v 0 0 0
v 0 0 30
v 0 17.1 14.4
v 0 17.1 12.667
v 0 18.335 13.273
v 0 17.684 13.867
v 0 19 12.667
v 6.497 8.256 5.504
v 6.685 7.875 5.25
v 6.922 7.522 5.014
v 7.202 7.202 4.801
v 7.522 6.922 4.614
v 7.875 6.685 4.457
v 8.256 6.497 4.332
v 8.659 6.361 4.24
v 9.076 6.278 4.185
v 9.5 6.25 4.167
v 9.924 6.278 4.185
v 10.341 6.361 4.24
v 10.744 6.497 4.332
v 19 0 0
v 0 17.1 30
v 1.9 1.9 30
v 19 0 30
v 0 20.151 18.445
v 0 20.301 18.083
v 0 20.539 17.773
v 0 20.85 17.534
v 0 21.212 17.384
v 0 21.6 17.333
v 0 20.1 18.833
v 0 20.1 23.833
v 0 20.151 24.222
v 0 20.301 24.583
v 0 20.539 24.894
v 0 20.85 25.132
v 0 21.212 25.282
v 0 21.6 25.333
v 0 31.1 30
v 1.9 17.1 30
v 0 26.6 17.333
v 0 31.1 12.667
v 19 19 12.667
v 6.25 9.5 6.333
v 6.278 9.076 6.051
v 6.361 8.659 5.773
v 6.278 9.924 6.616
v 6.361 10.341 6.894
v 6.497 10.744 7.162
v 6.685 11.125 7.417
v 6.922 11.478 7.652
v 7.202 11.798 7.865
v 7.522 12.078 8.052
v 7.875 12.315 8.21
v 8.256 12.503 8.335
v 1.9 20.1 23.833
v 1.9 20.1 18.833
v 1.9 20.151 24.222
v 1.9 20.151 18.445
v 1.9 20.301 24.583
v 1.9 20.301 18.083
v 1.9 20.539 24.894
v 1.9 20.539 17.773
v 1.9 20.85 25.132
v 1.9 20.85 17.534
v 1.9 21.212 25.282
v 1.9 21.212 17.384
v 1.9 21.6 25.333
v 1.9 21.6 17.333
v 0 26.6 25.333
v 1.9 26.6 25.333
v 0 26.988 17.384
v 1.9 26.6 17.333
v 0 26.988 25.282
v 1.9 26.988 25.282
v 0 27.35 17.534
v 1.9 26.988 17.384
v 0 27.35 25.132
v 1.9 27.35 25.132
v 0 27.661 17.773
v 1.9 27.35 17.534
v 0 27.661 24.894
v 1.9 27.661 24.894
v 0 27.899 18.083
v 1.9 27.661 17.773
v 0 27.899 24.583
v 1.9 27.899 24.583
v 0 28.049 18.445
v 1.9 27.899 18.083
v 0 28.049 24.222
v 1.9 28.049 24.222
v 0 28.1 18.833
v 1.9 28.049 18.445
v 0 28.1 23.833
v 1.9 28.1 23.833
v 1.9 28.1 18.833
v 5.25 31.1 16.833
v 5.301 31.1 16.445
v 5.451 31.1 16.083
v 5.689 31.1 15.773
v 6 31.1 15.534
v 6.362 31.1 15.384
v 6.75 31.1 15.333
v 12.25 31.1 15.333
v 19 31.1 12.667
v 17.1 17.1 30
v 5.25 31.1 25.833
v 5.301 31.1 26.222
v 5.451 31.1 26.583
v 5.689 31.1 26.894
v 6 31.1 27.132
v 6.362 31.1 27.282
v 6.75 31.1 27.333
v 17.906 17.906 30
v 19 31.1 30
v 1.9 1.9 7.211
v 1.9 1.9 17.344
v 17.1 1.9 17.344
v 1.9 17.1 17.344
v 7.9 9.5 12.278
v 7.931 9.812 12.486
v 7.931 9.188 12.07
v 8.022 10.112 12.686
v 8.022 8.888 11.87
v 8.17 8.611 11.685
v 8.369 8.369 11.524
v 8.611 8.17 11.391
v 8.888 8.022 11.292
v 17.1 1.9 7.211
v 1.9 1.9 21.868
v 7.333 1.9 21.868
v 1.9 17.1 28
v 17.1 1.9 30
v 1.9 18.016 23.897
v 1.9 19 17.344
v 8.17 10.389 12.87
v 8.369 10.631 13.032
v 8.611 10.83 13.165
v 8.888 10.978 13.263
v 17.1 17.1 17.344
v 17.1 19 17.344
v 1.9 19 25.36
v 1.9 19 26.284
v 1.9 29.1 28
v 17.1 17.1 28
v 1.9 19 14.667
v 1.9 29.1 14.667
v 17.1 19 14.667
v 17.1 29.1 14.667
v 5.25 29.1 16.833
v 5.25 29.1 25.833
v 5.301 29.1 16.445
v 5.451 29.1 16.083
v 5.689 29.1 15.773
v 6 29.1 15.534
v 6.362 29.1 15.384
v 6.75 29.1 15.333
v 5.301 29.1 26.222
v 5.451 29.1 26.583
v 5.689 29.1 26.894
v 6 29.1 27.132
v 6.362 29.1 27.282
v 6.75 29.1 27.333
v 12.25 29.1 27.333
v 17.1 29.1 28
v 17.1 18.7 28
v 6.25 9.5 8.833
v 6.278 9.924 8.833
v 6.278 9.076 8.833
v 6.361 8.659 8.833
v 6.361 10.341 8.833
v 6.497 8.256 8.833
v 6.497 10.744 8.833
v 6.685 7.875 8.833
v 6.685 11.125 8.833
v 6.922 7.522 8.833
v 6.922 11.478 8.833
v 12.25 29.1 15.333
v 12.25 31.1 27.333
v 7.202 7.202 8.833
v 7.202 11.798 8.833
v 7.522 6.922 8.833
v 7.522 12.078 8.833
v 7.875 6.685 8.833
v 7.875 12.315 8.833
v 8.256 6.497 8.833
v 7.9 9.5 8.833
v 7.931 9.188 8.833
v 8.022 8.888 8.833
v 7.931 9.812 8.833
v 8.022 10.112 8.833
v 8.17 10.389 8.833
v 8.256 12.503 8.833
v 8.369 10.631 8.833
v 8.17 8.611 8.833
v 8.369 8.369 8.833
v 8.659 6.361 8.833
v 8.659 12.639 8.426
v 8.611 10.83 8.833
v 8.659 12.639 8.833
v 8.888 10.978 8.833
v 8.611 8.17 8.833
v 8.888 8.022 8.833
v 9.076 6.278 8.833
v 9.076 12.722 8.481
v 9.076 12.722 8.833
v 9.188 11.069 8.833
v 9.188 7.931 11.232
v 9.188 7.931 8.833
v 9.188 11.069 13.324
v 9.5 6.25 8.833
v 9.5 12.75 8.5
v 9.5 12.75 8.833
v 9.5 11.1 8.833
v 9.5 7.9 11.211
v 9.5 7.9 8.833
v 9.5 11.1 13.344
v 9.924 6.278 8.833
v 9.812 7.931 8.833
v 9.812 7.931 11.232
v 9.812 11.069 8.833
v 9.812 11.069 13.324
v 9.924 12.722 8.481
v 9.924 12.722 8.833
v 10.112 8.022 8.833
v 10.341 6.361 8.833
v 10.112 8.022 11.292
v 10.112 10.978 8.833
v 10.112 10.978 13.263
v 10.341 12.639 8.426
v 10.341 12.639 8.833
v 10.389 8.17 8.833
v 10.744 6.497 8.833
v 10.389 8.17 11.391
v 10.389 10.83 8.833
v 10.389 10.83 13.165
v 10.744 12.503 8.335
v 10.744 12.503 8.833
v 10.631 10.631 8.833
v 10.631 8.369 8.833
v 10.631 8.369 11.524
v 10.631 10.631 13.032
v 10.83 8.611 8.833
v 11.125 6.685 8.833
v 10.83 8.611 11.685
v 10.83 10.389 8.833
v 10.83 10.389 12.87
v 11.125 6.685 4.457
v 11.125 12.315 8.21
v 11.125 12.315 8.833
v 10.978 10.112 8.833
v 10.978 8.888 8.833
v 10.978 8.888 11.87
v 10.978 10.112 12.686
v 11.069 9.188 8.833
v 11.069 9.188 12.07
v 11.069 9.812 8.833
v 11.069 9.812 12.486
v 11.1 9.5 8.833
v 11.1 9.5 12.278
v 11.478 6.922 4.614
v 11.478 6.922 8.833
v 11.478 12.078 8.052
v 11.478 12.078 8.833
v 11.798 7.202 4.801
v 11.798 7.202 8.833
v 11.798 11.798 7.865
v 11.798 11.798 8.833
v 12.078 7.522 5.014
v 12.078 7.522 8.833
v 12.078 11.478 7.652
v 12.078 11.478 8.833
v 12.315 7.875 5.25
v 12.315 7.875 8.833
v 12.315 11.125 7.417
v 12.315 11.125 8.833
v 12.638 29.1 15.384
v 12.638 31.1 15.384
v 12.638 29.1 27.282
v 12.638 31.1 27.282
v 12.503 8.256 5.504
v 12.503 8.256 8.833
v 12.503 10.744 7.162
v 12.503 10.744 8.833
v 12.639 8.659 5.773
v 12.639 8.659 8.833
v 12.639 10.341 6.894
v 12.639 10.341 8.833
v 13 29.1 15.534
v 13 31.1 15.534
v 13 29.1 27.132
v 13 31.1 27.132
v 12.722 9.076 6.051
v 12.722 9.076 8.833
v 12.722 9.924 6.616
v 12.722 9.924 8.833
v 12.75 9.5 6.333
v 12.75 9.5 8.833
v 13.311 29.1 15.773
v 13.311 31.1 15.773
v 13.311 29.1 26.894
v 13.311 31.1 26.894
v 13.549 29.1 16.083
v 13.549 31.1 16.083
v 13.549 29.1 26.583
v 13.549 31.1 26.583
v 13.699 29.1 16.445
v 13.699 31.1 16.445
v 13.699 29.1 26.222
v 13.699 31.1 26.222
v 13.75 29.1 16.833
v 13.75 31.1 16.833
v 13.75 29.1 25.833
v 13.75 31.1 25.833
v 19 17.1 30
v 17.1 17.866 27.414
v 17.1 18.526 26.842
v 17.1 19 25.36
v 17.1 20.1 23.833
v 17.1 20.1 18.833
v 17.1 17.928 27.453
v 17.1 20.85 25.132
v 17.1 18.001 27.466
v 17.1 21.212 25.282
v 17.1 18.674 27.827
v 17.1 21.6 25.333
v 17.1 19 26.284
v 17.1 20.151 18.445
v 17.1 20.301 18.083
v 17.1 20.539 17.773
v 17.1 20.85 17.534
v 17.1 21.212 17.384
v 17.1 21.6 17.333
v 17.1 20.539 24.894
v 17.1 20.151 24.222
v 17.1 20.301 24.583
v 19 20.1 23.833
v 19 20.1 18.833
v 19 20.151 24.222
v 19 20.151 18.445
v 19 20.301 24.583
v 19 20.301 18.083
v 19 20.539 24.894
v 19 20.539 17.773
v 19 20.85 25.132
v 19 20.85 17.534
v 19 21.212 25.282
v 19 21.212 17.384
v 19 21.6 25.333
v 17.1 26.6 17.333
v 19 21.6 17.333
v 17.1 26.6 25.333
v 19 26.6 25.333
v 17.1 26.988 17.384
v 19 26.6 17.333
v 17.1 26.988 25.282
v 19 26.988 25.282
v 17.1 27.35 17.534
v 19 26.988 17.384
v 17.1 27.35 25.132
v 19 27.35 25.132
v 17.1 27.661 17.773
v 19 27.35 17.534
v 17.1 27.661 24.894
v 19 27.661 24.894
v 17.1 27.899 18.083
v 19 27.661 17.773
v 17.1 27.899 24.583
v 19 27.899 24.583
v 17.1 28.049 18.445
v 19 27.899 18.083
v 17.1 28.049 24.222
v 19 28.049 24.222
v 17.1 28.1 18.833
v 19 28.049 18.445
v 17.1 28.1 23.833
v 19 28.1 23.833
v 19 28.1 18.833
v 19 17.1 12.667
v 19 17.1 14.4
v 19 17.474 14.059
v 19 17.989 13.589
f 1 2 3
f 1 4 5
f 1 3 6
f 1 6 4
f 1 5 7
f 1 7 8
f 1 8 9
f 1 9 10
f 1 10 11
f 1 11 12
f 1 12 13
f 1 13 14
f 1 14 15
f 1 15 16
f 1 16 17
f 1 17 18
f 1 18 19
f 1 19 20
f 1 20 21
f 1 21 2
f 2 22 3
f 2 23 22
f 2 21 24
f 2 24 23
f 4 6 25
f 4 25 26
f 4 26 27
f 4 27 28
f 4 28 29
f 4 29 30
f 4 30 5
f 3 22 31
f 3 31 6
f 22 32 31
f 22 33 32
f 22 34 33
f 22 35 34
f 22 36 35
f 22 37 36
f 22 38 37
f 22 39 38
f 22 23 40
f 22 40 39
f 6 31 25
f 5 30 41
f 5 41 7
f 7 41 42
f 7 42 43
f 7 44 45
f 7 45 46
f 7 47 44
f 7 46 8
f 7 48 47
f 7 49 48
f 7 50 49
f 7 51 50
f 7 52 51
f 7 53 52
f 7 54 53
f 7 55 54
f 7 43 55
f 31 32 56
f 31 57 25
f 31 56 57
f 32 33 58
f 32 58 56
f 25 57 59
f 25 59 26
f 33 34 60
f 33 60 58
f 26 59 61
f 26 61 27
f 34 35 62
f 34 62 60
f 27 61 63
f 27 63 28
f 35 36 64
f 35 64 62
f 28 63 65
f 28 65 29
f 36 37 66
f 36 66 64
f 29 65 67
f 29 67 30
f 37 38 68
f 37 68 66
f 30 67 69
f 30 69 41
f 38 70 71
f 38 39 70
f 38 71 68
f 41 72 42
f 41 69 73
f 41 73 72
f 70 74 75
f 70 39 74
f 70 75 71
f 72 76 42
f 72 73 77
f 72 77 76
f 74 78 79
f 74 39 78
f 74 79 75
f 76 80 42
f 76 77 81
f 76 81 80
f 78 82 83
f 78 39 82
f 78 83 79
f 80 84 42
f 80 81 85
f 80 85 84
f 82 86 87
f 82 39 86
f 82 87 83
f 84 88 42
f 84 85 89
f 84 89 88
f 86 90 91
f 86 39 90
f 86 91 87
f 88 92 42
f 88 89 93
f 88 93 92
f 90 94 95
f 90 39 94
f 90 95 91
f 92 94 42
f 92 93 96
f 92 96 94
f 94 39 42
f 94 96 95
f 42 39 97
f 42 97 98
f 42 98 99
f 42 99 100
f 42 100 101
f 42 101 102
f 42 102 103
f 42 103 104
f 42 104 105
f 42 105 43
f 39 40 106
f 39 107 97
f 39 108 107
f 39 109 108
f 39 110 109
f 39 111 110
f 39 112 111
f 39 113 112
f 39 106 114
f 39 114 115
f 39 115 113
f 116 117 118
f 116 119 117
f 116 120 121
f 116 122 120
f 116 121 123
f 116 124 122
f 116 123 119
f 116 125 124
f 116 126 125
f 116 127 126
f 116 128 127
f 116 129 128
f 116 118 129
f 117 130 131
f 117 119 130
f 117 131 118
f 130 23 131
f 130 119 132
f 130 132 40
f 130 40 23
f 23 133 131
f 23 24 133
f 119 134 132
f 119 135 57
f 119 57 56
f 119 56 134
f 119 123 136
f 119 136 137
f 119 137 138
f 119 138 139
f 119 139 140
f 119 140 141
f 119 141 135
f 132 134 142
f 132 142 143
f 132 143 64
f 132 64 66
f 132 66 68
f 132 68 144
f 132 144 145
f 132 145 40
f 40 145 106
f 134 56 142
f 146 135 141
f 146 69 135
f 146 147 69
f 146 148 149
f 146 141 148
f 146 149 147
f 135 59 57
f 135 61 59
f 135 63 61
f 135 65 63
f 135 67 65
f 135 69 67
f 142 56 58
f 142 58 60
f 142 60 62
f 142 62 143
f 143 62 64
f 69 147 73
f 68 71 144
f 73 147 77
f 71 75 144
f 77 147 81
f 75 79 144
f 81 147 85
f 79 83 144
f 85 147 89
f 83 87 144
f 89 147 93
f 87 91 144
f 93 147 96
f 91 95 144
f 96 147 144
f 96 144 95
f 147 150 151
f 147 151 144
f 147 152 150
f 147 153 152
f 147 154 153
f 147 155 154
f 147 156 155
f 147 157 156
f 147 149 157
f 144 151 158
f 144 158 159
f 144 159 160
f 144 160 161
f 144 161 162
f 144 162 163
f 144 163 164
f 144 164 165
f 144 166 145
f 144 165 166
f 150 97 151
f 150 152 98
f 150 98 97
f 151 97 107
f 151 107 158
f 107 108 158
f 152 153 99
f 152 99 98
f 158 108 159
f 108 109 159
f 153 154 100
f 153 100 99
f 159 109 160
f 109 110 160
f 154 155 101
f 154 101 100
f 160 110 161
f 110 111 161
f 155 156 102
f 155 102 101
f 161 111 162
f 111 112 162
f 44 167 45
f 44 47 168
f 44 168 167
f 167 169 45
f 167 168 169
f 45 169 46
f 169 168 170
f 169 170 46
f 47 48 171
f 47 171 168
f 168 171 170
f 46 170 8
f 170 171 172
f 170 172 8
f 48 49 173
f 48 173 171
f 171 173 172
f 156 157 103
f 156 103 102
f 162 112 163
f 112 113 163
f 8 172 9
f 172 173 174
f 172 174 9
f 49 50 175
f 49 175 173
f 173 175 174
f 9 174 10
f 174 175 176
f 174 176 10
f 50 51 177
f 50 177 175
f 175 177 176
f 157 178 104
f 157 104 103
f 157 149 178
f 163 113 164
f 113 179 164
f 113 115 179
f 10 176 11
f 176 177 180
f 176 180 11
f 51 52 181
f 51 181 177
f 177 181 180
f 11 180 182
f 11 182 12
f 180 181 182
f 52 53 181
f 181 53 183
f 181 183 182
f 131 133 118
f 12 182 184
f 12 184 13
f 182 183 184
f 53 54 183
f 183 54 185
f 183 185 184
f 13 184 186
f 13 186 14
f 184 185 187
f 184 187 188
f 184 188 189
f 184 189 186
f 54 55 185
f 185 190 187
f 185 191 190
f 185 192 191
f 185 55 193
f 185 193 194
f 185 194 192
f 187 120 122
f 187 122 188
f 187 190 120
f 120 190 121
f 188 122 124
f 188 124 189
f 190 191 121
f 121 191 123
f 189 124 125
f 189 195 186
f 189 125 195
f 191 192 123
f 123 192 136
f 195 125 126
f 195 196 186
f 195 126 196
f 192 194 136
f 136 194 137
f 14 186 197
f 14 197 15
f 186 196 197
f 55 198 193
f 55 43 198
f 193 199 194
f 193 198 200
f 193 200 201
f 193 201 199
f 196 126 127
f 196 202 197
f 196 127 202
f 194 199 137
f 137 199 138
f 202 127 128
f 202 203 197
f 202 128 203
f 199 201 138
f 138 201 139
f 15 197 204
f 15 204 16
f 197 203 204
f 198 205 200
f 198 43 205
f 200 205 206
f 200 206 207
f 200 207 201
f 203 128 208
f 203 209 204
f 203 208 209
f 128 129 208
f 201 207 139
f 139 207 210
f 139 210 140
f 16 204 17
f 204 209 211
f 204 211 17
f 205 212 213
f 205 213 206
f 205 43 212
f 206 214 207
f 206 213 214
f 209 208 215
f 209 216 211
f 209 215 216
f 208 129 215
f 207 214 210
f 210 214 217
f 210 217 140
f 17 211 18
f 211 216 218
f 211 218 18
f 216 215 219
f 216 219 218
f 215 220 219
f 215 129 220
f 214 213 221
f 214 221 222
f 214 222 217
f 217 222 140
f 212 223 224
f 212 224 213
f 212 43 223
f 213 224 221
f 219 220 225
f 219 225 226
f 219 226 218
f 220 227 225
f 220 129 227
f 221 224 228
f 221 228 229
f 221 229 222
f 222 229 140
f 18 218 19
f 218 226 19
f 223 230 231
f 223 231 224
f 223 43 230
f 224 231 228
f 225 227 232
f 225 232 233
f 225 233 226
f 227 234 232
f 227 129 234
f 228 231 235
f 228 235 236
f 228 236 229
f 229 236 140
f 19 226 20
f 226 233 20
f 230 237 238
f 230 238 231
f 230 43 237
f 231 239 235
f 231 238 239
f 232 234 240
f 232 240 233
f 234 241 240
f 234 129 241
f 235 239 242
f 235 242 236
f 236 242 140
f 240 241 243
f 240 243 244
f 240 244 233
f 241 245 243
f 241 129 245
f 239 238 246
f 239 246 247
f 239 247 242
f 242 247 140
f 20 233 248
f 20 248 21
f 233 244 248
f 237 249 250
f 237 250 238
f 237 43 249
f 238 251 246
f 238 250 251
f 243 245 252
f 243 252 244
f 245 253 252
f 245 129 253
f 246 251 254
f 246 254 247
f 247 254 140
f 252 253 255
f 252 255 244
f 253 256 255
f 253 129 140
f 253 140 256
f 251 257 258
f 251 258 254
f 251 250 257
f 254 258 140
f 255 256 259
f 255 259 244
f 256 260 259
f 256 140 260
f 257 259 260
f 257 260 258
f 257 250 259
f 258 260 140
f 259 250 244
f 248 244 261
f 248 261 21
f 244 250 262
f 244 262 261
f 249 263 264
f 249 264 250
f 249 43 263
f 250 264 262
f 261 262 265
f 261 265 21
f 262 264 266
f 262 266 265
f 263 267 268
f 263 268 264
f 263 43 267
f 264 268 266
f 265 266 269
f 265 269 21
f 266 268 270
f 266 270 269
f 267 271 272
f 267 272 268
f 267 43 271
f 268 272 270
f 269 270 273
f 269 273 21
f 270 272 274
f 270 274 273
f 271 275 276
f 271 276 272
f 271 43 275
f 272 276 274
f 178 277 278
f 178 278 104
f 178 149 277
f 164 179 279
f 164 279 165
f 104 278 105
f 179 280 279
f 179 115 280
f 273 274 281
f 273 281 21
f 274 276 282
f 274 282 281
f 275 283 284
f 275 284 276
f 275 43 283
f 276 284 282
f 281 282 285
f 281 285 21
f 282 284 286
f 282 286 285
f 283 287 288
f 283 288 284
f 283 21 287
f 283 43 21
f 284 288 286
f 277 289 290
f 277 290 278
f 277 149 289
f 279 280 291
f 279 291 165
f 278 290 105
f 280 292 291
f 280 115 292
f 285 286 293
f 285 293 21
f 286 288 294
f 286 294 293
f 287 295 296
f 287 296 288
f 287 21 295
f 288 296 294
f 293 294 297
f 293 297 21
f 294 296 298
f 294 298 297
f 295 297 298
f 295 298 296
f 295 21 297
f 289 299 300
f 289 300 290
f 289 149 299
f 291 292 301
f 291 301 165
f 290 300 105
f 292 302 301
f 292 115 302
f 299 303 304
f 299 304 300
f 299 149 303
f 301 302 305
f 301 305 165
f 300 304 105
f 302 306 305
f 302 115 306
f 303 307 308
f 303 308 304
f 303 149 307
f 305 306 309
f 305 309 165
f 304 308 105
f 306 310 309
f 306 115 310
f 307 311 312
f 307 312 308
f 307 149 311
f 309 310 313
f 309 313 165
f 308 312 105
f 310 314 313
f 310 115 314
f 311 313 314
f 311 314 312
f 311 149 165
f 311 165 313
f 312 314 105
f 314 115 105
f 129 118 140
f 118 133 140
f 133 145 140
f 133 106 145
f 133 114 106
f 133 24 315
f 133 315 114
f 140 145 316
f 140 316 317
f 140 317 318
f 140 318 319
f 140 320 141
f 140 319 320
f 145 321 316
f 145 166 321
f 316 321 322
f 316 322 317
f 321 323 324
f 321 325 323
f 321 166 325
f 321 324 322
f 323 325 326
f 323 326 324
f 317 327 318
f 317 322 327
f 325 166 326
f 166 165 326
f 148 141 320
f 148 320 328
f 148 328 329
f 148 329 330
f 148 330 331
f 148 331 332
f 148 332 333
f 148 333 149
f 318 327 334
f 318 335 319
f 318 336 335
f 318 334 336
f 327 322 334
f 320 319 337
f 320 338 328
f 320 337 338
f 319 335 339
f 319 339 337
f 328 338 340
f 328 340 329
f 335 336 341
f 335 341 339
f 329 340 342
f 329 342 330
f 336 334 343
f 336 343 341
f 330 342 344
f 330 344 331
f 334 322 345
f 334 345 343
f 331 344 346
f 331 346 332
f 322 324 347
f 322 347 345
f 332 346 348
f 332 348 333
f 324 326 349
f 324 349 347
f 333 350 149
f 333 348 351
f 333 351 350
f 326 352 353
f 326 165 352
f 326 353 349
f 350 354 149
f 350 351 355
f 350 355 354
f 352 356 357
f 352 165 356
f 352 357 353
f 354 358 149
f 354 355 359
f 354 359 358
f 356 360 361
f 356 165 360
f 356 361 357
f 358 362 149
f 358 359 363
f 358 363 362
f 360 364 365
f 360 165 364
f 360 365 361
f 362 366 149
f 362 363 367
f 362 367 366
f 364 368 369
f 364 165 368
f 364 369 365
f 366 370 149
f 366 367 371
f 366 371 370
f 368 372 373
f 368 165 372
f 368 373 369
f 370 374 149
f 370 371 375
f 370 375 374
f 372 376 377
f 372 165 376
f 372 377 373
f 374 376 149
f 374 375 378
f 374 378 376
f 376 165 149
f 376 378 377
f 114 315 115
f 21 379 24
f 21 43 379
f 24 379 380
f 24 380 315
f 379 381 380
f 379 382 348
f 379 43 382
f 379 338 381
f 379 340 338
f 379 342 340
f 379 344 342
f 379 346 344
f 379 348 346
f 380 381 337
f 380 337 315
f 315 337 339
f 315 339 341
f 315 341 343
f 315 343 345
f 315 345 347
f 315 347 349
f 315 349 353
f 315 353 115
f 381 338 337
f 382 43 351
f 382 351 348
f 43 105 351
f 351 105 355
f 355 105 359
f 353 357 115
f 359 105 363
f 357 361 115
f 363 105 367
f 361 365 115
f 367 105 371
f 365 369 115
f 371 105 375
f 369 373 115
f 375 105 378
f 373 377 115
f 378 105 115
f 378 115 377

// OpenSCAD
// file: config.scad
// Shared dimensions for the open-flyball-thruster.
//
// Anything used by more than one file (a printed part, a lib, or the
// thruster.scad assembly) lives here. Values only one part cares about stay in
// that part's file.
//
// Usage:
//   scad/<part>.scad      include <config.scad>
//   scad/lib/<lib>.scad   include <../config.scad>
//   thruster.scad         include <scad/config.scad>

// ---------------------------------------------------------------------------
// Base plate
plate_size = [77.5, 80];
plate_thickness = 8;

// ---------------------------------------------------------------------------
// Steel baffles (80×20×2 on the base)
baffle_width = 20;              // nominal width; positions the extrusions
baffle_profile_width = 19.9;    // width of the modelled baffle outline and the base recess
baffle_length = 80;
baffle_thickness = 2;
baffle_partial_arc_radius = 20;
baffle_slot_width = 6.5;
baffle_slot_length = 15;
baffle_edge_offset = 2;

// ---------------------------------------------------------------------------
// 1515 aluminium extrusions
extrusion_size = 15;
extrusion_length = 115;                 // main profile pieces (×2)
extrusion_groove_depth = 1;             // how far the extrusions sit into the backstop
hammer_top_extrusion_length = 65;
hammer_side_extrusion_length = 135;     // long side of the angled cut
hammer_side_extrusion_short_length = 125; // short side of the angled cut (pedal connector)
hammer_side_cut_rise = hammer_side_extrusion_length - hammer_side_extrusion_short_length;
hammer_side_cut_angle = atan(hammer_side_cut_rise / extrusion_size);

extrusion_center_offset = plate_size[0] / 2 - baffle_width / 2;
distance_between_outside_faces_of_extrusions = 2 * extrusion_center_offset + extrusion_size;

// ---------------------------------------------------------------------------
// Fasteners
m3_hole_diameter = 3.2;
m3_hole_radius = m3_hole_diameter / 2;
m3_groove_diameter = 6.5;   // counterbore for M3 button / socket heads

// ---------------------------------------------------------------------------
// Linear rod, bushings, collars, springs
linear_shaft_hole_radius = 5;       // bore in base and backstop for the T-bushing body
linear_shaft_groove_depth = 2;      // T-bushing flange recess in the backstop

t_bushing_id = 8;
t_bushing_flange_od = 16;
t_bushing_flange_thickness = 3;
t_bushing_body_od = 10;
t_bushing_body_height = 5;

stop_collar_id = 8;
stop_collar_od = 14;
stop_collar_thickness = 7;

shaft_coupling_id = 8;
shaft_coupling_od = 14;
shaft_coupling_length = 22;

m4_tap_radius = 1.65;

main_spring_od = 12;
main_spring_wire_d = 1.2;
main_spring_length = 70;

hammer_spring_od = 8;
hammer_spring_wire_d = 0.9;
hammer_spring_length = 10;

// ---------------------------------------------------------------------------
// Backstop
backstop_thickness = 8;

// ---------------------------------------------------------------------------
// Plunger
plunger_thickness = 10;

// ---------------------------------------------------------------------------
// Hammer holders (pivot blocks on the main extrusions)
hammer_holder_wall = 6;
hammer_holder_depth = 12;
hammer_holder_inner_corner_radius = 5;
hammer_holder_m3_groove_depth = 1;
hardware_holder_height = 14;
hammer_extrusion_play = 1;          // side clearance for the hammer between the main extrusions
hammer_holder_extra_width = extrusion_center_offset - extrusion_size - hammer_holder_wall - hammer_extrusion_play / 2;

// ---------------------------------------------------------------------------
// Hammer joint + hammer head
hammer_joint_wall = 3;
hammer_joint_bottom_offset = 6;
hammer_joint_right_offset = 8;
hammer_top_extrusion_offset = 3;
hammer_head_height = 6;
hammer_head_height_offset = 4.5;    // how deep the hammer head sits in the joint's top pocket
hammer_joint_width = extrusion_size + 2 * hammer_joint_wall;
// Z of the floor of the hammer head pocket (where the hammer head sits)
hammer_joint_head_seat_z = hammer_joint_bottom_offset + extrusion_size + hammer_top_extrusion_offset + hammer_joint_wall;

// ---------------------------------------------------------------------------
// Spring holder (holds the hammer spring down)
spring_holder_height = 34;
spring_holder_thickness = 20;
spring_holder_screw_length = 30;
spring_holder_screw_extra_for_nut = 4;  // how far the M3 screw reaches past the part into the square nut
// Depth of the M3 head counterbore for a given spring holder height
function spring_holder_m3_groove_depth(height = spring_holder_height) =
    max(0, height - spring_holder_screw_length + spring_holder_screw_extra_for_nut);

// ---------------------------------------------------------------------------
// Pedal connector (slides over the bottom of the hammer side extrusion)
pedal_connector_height = 20;
pedal_connector_wall = 2;
pedal_connector_extrusion_tolerance = 0.1;
pedal_connector_outer = extrusion_size + 2 * pedal_connector_wall;
pedal_connector_cavity_size = extrusion_size + 2 * pedal_connector_extrusion_tolerance;
pedal_connector_cavity_offset = (pedal_connector_outer - pedal_connector_cavity_size) / 2;
pedal_connector_total_height = pedal_connector_height + hammer_side_cut_rise;
pedal_connector_bolt_cage_bottom_z = (hammer_side_cut_rise / extrusion_size) * pedal_connector_outer;
pedal_connector_bolt_cage_z = pedal_connector_total_height - pedal_connector_bolt_cage_bottom_z;
// main file
include <config.scad>

pedal_connector_bottom_wall = 6;
pedal_connector_bolt_cage_length = 12;
pedal_connector_bolt_cage_front_opening_x = 8.5;
pedal_connector_bolt_cage_front_opening_y = 12;
pedal_connector_bolt_cage_front_opening_corner_radius = 1.5;
pedal_connector_bolt_cage_window_width = 8;
pedal_connector_bolt_cage_window_height = 8;
pedal_connector_bolt_cage_window_corner_radius = 1.5;

pedal_connector_m3_groove_depth = 2.5;

extrusion_cavity_size = pedal_connector_cavity_size;
extrusion_cavity_offset = pedal_connector_cavity_offset;
pedal_connector_bottom_wall_z = pedal_connector_bottom_wall / cos(hammer_side_cut_angle);

// Main body outer shell: box with angled bottom, same idea as cavity but size = outer and floor at z=0.
// Floor z = (cut_rise/extrusion_size)*y. Faces: Clockwise when viewed from outside.
module main_body_outer_polyhedron() {
    h = pedal_connector_total_height;
    floor_z_0 = 0;
    floor_z_1 = (hammer_side_cut_rise / extrusion_size) * pedal_connector_outer;
    w = pedal_connector_outer;
    points = [
        [0, 0, floor_z_0],         [w, 0, floor_z_0],
        [w, w, floor_z_1],         [0, w, floor_z_1],
        [0, 0, h],                 [w, 0, h],
        [w, w, h],                 [0, w, h]
    ];
    faces = [
        [3, 2, 1, 0],   // bottom (angled)
        [4, 5, 6, 7],   // top
        [0, 1, 5, 4],   // front y=0
        [1, 2, 6, 5],   // right x=w
        [2, 3, 7, 6],   // back y=w
        [3, 0, 4, 7]    // left x=0
    ];
    polyhedron(points = points, faces = faces, convexity = 4);
}

// Extrusion cavity: same structure as outer but extrusion_cavity_size (extrusion + tolerance) and floor raised by bottom_wall_z.
// Floor z = bottom_wall_z + (cut_rise/extrusion_size)*y. Faces: Clockwise when viewed from outside.
module extrusion_cavity_polyhedron() {
    h = pedal_connector_total_height + 0.02;
    floor_z_0 = pedal_connector_bottom_wall_z;
    floor_z_1 = pedal_connector_bottom_wall_z + (hammer_side_cut_rise / extrusion_size) * extrusion_cavity_size;
    points = [
        [0, 0, floor_z_0],                         [extrusion_cavity_size, 0, floor_z_0],
        [extrusion_cavity_size, extrusion_cavity_size, floor_z_1], [0, extrusion_cavity_size, floor_z_1],
        [0, 0, h],                                  [extrusion_cavity_size, 0, h],
        [extrusion_cavity_size, extrusion_cavity_size, h],  [0, extrusion_cavity_size, h]
    ];
    faces = [
        [3, 2, 1, 0],   // bottom (angled)
        [4, 5, 6, 7],   // top
        [0, 1, 5, 4],   // front y=0
        [1, 2, 6, 5],   // right
        [2, 3, 7, 6],   // back
        [3, 0, 4, 7]    // left
    ];
    polyhedron(points = points, faces = faces, convexity = 4);
}

module bolt_cage_window_cut(wall, win_w, win_h, win_r) {
    rotate([0, 90, 0])
        linear_extrude(wall + 0.02, center = true)
            minkowski() {
                square([win_h - 2 * win_r, win_w - 2 * win_r], center = true);
                circle(r = win_r, $fn = 24);
            }
}

module pedal_connector() {
    union() {
        // Main body: outer shell polyhedron (angled bottom) minus extrusion cavity and holes
        difference() {
            main_body_outer_polyhedron();

            translate([extrusion_cavity_offset, extrusion_cavity_offset, 0]) {
                extrusion_cavity_polyhedron();
            }

            // Open main body to bolt cage: extend through full cavity depth so no lip (bolt cage cavity continues through)
            extrusion_cavity_short_side_z = pedal_connector_bottom_wall_z + (hammer_side_cut_rise / extrusion_size) * extrusion_cavity_size;
            opening_y_length = pedal_connector_outer - extrusion_cavity_offset;
            translate([extrusion_cavity_offset, extrusion_cavity_offset, extrusion_cavity_short_side_z]) {
                cube([
                    extrusion_cavity_size,
                    opening_y_length,
                    pedal_connector_total_height - extrusion_cavity_short_side_z
                ]);
            }

            hole_xy = pedal_connector_outer / 2;
            translate([hole_xy, hole_xy, -0.01]) {
                cylinder(h = pedal_connector_total_height + 0.02, d = m3_hole_diameter, $fn = 32);
            }
            groove_z_start = (hammer_side_cut_rise / extrusion_size) * hole_xy;
            translate([hole_xy, hole_xy, -0.01]) {
                cylinder(
                    h = groove_z_start + pedal_connector_m3_groove_depth + 0.01,
                    d = m3_groove_diameter,
                    $fn = 48
                );
            }
        }

        // Bolt cage
        translate([0, extrusion_cavity_offset + extrusion_cavity_size, pedal_connector_bolt_cage_bottom_z]) {
            bolt_cage_x = pedal_connector_outer;
            bolt_cage_y = pedal_connector_bolt_cage_length + pedal_connector_wall;
            bolt_cage_z = pedal_connector_bolt_cage_z;
            w = pedal_connector_wall;
            difference() {
                cube([bolt_cage_x, bolt_cage_y, bolt_cage_z]);
                translate([extrusion_cavity_offset, 0, pedal_connector_wall]) {
                    cube([
                        extrusion_cavity_size,
                        bolt_cage_y - w,
                        bolt_cage_z - pedal_connector_wall - w
                    ]);
                }
                // Windows in the two sides
                win_w = pedal_connector_bolt_cage_window_width;
                win_h = pedal_connector_bolt_cage_window_height;
                win_r = min(pedal_connector_bolt_cage_window_corner_radius, win_w / 2, win_h / 2);
                win_y = (bolt_cage_y - win_w) / 2;
                win_z = (bolt_cage_z - win_h) / 2;
                translate([w / 2, win_y + win_w / 2, win_z + win_h / 2])
                    bolt_cage_window_cut(w, win_w, win_h, win_r);
                translate([bolt_cage_x - w / 2, win_y + win_w / 2, win_z + win_h / 2])
                    bolt_cage_window_cut(w, win_w, win_h, win_r);

                // Front opening
                front_open_x = pedal_connector_bolt_cage_front_opening_x;
                front_open_y = pedal_connector_bolt_cage_front_opening_y;
                front_open_r = min(
                    pedal_connector_bolt_cage_front_opening_corner_radius,
                    front_open_x / 2,
                    front_open_y / 2
                );
                translate([bolt_cage_x / 2, bolt_cage_y - w / 2, bolt_cage_z / 2]) {
                    rotate([90, 0, 0]) {
                        linear_extrude(w + 0.02, center = true) {
                            minkowski() {
                                square([front_open_x - 2 * front_open_r, front_open_y - 2 * front_open_r], center = true);
                                circle(r = front_open_r, $fn = 24);
                            }
                        }
                    }
                }
            }
        }
    }
}

pedal_connector();
